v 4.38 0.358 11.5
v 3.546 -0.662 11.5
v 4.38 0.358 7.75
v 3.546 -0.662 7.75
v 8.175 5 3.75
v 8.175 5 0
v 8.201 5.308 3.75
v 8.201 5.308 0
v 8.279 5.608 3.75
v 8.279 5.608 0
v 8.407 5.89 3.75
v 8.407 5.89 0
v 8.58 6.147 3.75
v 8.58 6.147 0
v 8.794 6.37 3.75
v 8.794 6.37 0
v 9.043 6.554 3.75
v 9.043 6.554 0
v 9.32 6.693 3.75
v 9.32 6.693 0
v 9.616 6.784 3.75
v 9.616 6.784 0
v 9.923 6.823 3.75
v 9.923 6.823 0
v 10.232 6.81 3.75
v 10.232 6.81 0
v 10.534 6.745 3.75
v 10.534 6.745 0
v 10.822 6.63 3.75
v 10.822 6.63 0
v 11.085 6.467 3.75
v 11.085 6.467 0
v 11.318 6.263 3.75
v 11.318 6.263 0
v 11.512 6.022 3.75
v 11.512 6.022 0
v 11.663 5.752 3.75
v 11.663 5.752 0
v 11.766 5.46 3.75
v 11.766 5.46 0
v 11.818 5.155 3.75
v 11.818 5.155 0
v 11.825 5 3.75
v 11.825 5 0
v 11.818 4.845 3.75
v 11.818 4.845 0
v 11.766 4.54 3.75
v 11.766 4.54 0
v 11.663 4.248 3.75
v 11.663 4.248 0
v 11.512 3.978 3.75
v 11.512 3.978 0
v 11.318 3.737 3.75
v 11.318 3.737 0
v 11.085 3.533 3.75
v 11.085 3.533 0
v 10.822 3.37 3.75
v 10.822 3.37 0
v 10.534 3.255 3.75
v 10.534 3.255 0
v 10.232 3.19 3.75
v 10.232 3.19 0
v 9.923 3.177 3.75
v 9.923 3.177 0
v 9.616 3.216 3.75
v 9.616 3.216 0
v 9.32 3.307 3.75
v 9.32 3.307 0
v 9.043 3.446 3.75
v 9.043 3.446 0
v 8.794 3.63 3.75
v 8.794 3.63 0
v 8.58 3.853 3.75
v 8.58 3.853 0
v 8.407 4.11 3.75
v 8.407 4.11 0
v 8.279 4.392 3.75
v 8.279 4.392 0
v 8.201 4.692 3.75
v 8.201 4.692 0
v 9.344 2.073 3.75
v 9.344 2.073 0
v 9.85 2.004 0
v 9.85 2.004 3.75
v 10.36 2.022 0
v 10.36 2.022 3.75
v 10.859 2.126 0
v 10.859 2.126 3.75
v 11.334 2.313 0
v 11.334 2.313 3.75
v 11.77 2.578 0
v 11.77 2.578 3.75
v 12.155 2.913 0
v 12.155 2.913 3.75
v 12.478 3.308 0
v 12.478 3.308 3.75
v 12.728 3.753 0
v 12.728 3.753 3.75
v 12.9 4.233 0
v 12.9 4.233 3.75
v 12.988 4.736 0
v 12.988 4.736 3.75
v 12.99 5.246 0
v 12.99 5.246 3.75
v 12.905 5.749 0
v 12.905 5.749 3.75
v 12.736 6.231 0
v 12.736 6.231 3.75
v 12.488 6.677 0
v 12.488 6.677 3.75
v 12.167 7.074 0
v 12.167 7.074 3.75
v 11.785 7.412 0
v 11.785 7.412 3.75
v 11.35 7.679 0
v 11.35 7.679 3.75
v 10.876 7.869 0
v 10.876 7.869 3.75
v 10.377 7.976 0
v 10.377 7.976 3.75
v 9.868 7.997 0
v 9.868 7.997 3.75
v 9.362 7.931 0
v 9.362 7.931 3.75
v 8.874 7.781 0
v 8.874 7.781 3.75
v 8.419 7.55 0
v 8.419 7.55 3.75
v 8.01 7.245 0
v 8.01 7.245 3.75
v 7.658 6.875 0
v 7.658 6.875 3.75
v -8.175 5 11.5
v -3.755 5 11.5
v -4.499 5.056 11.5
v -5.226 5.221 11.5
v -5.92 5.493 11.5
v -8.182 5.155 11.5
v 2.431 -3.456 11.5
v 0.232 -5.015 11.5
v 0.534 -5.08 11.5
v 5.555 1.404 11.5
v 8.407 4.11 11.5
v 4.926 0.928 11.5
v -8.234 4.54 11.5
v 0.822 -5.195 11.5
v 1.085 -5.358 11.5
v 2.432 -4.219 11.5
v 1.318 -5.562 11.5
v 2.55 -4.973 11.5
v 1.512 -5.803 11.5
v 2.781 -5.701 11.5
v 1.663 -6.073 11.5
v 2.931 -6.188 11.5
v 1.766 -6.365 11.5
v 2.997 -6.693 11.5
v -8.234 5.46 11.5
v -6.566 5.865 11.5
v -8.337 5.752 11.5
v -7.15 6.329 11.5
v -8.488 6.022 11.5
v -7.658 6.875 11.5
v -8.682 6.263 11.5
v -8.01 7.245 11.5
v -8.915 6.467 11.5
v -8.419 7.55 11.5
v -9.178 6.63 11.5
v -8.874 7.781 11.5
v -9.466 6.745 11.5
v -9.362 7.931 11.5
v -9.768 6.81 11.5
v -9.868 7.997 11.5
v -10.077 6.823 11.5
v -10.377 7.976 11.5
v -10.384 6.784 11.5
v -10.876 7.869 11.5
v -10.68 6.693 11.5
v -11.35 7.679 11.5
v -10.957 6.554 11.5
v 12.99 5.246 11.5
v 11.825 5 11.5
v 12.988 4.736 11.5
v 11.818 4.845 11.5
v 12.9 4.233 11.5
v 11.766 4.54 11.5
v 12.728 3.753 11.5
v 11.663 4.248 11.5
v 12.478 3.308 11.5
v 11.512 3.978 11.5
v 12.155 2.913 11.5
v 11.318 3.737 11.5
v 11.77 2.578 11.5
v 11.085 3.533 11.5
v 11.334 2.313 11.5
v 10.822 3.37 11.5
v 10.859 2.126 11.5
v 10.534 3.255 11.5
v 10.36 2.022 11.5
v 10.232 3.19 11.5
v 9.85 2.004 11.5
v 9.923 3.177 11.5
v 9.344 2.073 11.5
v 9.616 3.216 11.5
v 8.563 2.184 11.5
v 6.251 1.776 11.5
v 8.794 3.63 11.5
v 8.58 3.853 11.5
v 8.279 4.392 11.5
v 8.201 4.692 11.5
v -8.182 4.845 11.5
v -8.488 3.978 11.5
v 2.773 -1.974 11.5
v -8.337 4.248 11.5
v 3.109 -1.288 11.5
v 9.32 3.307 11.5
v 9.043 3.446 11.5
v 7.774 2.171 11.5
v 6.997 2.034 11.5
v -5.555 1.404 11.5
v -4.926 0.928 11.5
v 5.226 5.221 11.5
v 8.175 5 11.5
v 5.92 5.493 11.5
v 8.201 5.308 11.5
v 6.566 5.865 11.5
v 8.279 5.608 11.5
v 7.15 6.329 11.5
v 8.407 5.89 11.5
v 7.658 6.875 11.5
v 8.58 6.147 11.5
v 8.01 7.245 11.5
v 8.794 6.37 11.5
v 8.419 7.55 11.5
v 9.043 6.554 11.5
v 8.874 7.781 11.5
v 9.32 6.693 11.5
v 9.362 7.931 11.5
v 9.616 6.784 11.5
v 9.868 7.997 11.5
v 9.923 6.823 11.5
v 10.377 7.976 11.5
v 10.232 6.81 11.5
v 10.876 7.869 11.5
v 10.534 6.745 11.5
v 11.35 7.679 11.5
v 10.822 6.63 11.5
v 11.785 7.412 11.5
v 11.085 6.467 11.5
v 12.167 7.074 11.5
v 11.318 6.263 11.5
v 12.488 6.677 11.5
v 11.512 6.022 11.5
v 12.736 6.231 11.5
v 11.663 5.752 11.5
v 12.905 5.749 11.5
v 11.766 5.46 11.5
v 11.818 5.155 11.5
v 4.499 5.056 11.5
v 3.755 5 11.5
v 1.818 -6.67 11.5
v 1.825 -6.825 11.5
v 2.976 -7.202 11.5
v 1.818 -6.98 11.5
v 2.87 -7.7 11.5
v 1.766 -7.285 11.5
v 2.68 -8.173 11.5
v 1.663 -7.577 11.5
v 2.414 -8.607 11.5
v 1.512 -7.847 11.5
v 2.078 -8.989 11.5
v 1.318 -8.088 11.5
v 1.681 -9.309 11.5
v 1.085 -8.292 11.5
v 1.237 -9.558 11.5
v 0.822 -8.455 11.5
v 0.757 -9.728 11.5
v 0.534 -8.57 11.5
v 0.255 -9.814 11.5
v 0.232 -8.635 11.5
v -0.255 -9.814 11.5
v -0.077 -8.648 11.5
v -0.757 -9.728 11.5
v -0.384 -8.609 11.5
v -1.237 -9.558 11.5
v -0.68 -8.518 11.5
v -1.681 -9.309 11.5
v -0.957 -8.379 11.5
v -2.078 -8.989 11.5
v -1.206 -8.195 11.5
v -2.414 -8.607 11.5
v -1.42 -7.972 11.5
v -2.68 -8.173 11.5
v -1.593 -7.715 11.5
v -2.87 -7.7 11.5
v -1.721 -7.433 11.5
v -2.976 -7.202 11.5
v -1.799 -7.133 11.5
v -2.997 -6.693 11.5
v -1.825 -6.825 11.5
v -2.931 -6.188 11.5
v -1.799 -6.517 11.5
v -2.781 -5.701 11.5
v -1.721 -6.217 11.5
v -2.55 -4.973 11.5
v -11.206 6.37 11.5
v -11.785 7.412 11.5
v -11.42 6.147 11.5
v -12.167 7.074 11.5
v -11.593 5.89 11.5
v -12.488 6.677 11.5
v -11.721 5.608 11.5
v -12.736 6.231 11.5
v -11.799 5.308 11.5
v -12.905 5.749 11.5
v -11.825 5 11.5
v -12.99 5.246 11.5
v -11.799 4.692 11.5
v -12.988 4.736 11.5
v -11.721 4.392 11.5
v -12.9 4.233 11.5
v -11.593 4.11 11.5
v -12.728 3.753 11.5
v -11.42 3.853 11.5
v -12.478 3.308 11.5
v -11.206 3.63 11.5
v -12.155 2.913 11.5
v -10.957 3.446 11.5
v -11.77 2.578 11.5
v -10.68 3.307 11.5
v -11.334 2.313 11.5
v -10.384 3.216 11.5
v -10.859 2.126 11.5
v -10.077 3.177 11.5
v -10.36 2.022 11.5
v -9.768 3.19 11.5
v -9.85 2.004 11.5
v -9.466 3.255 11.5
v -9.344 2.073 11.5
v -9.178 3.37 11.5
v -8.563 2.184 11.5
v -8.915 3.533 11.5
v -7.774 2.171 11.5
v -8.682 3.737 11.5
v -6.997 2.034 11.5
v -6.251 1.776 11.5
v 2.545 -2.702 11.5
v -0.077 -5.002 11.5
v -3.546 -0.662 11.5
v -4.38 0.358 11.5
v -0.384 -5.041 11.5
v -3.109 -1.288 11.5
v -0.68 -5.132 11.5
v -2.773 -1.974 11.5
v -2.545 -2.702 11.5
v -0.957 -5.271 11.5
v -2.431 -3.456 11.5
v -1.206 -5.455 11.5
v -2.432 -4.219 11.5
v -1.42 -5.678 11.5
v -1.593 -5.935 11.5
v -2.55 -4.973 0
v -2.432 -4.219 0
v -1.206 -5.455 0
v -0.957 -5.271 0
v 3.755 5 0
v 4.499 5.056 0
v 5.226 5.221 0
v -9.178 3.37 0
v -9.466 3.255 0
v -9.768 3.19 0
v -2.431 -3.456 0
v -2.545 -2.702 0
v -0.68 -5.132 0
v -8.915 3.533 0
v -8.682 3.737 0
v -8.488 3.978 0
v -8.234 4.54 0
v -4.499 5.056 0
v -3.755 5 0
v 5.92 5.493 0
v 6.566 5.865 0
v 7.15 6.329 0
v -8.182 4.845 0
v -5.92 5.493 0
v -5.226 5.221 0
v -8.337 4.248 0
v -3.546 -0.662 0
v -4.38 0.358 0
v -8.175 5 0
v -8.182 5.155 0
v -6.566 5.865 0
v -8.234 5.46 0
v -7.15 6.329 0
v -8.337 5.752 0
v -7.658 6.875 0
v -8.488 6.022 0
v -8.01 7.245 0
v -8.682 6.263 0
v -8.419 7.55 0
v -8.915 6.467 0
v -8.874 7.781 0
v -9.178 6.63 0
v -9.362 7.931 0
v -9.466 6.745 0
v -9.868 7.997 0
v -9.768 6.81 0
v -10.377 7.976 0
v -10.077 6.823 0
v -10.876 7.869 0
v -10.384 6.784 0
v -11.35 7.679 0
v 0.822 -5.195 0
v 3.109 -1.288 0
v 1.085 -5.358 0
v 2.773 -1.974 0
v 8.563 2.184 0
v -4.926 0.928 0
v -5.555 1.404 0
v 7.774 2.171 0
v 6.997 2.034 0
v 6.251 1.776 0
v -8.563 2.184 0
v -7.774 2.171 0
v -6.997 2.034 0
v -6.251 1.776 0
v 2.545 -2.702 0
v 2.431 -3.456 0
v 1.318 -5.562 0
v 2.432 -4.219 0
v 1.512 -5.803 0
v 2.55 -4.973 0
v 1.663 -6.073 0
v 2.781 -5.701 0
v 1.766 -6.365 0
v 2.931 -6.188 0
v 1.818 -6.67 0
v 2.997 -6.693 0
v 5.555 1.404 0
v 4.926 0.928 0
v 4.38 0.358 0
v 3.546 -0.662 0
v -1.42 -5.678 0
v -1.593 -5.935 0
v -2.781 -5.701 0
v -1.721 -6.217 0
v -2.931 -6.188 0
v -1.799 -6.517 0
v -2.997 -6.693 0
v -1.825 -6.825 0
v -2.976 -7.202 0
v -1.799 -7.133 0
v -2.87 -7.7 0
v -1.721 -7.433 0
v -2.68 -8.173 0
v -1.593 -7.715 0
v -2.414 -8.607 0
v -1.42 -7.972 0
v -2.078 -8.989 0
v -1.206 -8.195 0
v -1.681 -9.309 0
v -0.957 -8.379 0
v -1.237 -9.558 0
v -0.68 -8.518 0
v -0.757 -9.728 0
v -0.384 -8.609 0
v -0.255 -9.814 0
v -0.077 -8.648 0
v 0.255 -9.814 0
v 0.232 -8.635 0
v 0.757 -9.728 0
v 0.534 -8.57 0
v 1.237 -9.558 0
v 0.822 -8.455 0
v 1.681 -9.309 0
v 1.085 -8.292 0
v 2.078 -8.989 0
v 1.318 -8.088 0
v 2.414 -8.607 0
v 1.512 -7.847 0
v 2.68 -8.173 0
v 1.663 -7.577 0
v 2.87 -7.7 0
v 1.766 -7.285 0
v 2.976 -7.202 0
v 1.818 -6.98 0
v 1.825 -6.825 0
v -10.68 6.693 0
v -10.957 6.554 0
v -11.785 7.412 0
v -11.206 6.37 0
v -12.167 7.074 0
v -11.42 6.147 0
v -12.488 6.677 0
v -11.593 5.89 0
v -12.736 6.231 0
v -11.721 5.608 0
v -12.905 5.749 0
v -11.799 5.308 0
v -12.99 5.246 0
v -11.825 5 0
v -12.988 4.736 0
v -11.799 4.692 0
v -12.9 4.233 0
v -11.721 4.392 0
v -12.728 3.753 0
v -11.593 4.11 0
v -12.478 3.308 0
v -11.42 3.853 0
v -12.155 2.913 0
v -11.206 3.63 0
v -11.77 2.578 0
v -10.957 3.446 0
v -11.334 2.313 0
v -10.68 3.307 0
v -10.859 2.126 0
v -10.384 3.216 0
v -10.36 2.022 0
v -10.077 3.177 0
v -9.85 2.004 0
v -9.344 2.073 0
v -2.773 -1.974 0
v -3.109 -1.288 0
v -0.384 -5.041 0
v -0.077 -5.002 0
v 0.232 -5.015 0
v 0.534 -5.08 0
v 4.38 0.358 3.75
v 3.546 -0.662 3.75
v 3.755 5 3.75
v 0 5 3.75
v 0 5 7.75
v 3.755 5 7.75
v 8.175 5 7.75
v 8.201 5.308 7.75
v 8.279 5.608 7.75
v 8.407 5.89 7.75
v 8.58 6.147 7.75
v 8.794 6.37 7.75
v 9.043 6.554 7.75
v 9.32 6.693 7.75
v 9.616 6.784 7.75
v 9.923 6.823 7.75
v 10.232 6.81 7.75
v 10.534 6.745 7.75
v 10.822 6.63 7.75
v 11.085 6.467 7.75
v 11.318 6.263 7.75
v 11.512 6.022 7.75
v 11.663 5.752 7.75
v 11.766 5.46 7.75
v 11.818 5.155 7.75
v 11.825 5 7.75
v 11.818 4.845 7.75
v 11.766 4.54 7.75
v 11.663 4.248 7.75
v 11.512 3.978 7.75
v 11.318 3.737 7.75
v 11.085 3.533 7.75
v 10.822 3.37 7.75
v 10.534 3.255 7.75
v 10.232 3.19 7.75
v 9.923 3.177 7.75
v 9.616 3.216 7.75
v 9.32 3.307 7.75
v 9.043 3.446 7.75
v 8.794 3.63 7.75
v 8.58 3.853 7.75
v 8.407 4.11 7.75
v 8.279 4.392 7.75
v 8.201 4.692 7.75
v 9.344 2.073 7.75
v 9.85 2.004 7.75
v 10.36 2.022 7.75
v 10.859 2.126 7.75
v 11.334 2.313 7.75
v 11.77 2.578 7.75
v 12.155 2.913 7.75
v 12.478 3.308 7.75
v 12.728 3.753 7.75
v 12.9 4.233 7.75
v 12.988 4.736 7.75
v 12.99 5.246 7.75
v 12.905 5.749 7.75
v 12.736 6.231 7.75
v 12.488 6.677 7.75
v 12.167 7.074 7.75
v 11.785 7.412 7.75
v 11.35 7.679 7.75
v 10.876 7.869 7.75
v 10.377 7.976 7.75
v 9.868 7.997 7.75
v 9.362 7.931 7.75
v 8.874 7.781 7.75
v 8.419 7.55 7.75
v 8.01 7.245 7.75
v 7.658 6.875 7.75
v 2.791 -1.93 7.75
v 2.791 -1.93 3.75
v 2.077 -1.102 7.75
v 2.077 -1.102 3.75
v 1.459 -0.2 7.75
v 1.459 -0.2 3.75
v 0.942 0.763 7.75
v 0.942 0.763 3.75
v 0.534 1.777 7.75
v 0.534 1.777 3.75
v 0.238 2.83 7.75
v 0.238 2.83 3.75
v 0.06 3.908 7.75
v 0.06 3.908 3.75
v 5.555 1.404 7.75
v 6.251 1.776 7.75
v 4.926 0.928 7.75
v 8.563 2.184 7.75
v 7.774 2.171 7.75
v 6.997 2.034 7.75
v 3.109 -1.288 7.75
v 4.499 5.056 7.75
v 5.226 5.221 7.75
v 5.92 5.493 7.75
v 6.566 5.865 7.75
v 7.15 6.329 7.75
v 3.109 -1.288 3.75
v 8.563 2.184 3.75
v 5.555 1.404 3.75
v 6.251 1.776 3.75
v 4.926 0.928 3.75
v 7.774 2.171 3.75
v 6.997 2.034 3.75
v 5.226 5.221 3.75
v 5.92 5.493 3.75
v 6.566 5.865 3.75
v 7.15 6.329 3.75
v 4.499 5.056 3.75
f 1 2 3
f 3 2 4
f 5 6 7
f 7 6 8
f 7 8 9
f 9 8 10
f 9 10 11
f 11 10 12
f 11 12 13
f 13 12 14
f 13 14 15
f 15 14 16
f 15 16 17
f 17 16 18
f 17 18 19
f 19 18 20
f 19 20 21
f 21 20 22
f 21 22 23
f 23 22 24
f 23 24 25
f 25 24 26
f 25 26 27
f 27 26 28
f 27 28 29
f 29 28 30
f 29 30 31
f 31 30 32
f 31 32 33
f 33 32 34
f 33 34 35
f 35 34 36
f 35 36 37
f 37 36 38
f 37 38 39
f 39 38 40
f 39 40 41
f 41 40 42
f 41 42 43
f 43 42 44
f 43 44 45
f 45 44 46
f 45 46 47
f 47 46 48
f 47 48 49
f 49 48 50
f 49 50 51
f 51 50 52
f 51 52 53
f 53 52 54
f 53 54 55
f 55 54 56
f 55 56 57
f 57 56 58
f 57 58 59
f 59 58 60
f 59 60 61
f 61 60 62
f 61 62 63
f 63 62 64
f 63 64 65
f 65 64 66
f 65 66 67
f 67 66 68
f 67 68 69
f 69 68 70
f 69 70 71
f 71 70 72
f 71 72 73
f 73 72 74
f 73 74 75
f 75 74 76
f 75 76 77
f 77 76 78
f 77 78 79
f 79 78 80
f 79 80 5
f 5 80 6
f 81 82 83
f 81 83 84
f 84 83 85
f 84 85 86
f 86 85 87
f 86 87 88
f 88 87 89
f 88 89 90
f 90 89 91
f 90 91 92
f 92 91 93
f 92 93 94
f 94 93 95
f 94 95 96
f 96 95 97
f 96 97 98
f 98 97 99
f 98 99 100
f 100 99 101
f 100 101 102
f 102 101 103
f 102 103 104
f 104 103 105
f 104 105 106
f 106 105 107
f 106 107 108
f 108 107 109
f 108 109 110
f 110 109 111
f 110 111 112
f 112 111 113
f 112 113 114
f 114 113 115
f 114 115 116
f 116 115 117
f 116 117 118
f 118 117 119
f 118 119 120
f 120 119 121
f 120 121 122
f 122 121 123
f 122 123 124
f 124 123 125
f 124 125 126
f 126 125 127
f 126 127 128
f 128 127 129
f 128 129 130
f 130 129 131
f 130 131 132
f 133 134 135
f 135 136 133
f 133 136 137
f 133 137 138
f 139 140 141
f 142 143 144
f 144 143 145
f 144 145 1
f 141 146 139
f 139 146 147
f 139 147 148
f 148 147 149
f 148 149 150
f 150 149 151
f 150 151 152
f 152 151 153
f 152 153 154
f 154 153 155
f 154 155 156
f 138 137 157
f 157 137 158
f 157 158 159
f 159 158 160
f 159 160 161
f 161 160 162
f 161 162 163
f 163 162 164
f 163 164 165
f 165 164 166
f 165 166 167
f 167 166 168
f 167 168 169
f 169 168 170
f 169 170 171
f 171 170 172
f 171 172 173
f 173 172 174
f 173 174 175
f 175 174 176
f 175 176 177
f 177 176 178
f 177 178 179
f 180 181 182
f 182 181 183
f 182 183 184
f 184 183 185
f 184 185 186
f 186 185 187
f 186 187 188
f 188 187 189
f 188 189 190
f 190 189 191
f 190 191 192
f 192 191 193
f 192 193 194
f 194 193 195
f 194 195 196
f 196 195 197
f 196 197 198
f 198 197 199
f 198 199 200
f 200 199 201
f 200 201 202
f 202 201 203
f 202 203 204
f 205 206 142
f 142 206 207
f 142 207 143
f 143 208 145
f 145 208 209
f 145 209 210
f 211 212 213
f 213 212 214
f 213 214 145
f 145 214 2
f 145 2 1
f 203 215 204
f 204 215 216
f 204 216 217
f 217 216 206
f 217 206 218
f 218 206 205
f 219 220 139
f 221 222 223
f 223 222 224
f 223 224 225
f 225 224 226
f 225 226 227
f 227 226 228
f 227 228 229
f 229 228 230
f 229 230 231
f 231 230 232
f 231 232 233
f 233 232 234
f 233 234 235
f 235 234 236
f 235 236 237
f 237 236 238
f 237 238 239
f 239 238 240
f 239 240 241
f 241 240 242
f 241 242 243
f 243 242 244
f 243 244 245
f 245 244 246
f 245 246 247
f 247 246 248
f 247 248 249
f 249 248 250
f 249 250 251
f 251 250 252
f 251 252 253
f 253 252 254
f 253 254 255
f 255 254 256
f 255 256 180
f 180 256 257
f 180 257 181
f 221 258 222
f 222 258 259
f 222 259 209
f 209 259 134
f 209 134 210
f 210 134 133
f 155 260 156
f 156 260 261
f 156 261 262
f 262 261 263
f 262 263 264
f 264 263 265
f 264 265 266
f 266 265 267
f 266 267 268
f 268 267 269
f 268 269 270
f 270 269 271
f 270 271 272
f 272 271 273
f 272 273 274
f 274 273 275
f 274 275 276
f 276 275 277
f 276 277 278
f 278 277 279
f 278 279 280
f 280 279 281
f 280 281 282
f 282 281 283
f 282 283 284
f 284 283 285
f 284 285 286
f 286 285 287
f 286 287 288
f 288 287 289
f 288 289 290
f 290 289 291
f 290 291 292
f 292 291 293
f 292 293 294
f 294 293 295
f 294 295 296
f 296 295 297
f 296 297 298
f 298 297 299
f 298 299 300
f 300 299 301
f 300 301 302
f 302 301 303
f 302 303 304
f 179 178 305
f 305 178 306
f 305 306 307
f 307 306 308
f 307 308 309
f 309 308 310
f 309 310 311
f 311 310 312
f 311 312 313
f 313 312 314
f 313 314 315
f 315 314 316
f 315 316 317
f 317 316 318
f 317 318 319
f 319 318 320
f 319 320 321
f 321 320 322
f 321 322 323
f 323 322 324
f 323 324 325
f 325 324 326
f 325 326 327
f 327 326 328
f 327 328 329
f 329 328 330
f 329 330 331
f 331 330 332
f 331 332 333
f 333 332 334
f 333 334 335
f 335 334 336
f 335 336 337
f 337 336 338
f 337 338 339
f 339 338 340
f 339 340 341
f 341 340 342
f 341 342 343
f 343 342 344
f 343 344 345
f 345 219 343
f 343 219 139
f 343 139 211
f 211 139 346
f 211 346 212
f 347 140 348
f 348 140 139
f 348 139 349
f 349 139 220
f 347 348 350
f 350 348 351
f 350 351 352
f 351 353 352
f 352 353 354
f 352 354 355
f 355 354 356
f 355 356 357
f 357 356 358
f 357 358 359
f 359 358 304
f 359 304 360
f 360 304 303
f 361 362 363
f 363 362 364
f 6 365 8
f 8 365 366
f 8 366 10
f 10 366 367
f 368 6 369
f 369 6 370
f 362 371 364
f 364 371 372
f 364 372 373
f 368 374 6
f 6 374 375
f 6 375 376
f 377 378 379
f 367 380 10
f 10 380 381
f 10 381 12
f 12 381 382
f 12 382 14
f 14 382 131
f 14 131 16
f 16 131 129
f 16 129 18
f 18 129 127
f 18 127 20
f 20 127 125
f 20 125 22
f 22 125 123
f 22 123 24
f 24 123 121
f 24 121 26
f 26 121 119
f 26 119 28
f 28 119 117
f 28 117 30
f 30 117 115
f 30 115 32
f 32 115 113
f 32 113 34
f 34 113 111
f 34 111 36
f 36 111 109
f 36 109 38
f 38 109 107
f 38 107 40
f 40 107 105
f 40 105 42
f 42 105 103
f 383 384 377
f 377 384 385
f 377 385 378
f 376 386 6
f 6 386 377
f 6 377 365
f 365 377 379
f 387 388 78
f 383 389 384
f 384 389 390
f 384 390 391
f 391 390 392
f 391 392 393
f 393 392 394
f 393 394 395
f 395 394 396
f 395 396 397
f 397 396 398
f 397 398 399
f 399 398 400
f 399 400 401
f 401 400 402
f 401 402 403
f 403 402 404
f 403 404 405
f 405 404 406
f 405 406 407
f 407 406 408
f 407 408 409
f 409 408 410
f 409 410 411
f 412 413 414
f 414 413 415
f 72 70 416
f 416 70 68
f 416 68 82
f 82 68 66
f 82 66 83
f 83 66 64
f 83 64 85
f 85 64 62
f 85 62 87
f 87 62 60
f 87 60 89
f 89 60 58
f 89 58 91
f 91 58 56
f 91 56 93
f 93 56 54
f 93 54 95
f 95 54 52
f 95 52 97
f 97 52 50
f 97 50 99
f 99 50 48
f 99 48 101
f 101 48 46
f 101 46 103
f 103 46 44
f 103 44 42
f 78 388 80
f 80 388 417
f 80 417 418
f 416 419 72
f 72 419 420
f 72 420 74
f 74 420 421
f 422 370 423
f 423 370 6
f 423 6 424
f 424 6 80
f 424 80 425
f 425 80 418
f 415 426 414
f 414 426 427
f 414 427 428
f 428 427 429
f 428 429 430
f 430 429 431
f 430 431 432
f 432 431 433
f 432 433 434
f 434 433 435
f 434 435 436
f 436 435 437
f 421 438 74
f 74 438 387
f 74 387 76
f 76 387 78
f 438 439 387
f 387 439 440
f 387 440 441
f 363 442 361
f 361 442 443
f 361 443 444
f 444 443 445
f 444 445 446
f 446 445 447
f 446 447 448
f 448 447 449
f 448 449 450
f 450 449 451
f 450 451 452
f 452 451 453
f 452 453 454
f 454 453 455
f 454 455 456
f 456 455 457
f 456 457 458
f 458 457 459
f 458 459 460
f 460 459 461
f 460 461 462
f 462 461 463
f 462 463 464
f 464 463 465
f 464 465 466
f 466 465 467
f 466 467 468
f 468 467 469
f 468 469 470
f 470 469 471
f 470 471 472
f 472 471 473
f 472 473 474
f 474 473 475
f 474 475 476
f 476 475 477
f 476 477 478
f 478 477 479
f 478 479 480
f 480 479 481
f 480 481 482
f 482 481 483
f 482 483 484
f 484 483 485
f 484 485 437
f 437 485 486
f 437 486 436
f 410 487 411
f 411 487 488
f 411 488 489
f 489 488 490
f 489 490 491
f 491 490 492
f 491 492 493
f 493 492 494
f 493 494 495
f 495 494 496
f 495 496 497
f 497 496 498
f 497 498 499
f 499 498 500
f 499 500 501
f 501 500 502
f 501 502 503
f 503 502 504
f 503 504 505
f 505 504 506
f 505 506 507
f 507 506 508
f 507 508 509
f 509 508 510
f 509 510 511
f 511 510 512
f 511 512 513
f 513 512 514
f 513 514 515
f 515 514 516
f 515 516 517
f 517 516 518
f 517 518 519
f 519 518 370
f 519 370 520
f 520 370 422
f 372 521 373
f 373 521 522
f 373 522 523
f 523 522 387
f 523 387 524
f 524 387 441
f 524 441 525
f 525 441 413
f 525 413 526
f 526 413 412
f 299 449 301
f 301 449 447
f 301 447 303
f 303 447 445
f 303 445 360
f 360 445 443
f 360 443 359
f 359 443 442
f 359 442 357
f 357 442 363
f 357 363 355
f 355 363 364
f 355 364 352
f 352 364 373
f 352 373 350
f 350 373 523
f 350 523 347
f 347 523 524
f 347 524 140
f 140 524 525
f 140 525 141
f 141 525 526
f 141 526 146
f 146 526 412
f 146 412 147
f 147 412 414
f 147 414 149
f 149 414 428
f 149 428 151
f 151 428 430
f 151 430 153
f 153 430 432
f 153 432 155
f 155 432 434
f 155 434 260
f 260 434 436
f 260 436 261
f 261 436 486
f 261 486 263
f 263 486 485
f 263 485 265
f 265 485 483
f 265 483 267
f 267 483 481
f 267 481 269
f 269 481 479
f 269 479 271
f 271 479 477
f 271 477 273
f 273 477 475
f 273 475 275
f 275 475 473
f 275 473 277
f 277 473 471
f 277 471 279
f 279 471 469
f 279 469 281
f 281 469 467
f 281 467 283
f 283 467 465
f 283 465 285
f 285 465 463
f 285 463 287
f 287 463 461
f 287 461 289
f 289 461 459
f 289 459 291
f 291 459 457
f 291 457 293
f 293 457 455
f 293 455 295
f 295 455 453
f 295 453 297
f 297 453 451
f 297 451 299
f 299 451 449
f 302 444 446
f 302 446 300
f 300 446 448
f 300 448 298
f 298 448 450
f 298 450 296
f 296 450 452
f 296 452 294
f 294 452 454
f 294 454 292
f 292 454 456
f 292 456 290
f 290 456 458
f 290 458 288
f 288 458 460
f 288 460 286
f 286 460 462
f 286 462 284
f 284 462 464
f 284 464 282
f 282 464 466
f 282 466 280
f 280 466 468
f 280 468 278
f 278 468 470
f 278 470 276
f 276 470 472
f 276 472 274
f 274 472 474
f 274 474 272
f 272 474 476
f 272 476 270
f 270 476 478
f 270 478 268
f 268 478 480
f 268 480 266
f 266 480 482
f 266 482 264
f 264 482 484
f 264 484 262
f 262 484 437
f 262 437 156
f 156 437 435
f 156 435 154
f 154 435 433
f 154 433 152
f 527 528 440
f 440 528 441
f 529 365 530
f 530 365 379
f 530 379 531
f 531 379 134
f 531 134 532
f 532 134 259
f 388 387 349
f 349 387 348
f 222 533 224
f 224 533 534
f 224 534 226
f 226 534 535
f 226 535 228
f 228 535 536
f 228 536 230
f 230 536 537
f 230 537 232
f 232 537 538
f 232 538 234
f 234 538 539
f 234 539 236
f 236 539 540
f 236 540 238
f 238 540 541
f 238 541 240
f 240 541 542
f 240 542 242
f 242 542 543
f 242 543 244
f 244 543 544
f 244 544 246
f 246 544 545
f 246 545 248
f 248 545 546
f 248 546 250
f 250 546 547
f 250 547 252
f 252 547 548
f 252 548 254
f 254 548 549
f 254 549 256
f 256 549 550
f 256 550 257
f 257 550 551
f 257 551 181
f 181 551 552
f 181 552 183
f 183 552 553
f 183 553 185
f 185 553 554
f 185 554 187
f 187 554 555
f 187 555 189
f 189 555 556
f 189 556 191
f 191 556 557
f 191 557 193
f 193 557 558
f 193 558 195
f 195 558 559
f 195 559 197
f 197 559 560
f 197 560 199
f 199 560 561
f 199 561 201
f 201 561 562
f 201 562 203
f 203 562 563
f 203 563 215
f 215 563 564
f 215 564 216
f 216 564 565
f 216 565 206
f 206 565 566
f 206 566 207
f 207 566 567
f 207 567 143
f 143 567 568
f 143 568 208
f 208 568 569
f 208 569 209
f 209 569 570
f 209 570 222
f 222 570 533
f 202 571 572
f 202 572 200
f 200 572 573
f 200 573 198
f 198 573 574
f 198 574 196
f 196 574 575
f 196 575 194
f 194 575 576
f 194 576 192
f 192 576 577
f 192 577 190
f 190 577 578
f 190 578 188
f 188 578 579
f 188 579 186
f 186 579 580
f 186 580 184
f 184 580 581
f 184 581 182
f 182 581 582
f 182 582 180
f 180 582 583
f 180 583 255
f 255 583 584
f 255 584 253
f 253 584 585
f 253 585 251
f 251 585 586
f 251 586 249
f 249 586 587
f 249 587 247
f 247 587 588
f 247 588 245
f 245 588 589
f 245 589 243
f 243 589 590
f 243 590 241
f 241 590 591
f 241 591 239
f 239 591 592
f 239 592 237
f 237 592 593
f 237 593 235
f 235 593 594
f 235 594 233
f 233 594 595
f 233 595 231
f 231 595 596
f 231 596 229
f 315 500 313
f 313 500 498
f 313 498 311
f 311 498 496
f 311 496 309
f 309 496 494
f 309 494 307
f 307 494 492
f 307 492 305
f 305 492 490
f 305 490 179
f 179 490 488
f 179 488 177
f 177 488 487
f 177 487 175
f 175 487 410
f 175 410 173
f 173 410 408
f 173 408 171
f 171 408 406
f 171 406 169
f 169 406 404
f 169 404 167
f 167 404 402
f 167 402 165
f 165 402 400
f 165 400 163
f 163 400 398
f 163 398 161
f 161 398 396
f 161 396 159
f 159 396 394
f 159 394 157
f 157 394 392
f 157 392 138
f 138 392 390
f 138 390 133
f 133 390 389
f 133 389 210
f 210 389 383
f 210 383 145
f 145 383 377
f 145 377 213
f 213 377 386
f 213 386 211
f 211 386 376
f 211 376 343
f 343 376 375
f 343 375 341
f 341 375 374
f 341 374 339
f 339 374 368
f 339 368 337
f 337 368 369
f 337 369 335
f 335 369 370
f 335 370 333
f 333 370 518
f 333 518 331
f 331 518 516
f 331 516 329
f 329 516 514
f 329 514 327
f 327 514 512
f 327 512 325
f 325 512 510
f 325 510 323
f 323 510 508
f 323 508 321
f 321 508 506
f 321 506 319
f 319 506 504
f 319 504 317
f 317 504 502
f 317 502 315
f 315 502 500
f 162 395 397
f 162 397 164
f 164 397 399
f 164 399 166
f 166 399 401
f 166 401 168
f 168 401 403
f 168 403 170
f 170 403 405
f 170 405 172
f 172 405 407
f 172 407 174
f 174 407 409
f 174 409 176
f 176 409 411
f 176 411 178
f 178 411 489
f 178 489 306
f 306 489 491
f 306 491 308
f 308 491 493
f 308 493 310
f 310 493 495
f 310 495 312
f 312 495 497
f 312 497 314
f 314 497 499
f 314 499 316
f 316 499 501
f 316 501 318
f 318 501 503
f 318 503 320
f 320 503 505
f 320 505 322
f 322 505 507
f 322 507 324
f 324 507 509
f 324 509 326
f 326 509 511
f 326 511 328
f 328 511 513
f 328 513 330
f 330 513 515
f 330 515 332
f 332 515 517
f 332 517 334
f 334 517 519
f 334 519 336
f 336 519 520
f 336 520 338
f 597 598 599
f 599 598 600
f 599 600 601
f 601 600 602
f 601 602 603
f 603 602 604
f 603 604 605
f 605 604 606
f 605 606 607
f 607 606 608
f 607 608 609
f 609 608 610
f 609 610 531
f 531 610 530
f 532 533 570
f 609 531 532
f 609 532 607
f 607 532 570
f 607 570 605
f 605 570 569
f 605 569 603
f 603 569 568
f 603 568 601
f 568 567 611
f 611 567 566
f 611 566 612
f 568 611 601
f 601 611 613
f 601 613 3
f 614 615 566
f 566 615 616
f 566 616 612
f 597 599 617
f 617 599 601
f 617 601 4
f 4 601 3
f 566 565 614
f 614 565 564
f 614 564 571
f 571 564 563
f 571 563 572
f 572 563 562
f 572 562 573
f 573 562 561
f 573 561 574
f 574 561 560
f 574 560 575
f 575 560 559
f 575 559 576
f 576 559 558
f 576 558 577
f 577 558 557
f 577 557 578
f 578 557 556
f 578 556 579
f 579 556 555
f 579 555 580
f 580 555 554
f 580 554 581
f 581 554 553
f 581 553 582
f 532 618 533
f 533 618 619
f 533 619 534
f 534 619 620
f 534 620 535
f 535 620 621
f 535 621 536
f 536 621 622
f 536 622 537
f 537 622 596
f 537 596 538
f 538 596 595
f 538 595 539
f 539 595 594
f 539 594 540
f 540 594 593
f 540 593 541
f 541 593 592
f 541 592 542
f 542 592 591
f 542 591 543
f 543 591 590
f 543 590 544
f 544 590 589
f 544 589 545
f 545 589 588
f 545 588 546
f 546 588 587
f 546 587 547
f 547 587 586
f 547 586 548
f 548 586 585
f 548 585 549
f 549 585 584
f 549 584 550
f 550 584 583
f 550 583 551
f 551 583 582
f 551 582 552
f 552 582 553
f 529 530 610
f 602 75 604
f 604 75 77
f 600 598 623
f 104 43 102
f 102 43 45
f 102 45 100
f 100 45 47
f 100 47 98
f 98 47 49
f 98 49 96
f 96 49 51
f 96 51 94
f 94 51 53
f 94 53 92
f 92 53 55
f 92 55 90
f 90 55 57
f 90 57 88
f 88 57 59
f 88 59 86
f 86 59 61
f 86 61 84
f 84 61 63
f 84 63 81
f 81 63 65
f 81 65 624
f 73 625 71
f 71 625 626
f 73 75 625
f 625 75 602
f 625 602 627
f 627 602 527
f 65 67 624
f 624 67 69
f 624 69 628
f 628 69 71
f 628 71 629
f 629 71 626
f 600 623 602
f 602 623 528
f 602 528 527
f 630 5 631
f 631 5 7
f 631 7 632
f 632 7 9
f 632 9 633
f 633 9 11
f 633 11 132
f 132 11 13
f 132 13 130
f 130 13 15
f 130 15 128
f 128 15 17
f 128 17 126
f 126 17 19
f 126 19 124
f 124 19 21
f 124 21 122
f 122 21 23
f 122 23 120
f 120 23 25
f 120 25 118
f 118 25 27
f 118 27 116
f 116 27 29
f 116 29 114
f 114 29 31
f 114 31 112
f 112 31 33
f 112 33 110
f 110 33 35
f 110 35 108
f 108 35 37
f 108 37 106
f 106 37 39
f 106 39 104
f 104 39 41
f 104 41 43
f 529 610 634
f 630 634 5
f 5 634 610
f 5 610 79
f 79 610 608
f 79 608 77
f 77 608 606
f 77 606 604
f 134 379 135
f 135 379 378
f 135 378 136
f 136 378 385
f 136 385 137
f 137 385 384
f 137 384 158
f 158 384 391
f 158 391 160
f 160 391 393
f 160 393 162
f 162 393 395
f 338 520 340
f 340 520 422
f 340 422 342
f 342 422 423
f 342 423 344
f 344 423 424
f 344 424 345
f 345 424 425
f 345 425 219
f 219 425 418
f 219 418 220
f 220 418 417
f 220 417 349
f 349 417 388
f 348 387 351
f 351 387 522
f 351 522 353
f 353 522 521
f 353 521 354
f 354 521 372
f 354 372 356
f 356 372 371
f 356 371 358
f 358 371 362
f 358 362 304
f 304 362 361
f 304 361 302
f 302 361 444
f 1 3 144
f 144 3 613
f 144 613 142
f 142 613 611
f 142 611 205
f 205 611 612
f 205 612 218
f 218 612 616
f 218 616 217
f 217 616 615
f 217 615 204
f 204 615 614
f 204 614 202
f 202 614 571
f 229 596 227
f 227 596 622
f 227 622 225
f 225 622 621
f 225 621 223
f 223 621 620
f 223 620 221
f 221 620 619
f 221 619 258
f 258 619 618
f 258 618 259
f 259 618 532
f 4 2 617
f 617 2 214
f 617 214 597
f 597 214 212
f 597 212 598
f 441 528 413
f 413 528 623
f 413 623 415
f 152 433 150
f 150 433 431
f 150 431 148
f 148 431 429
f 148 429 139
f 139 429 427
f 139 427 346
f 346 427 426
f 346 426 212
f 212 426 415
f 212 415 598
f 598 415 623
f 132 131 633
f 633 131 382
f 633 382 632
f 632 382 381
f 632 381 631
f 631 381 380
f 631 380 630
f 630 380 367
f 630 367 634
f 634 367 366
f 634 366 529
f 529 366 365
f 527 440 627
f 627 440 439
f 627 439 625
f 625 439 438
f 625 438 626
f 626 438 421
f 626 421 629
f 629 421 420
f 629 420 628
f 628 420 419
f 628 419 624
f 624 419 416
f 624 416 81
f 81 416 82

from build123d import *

# Parameters (mm, degrees)
ESQUISSE2_R             = 3
ESQUISSE2_R_2           = 1.825
BOSS_EXTRU_1_DEPTH      = 11.5
ESQUISSE3_R             = 10
ENL_V_MAT_EXTRU_1_DEPTH = 4
CONG_1_R                = 5
FILLET1_R               = 5


with BuildPart() as part:
    # Esquisse2 → Boss.-Extru.1 (new body)
    # profile 1 of 4: a face of its own
    with BuildSketch(Plane.XY):
        with Locations((-10, 5)):
            Circle(ESQUISSE2_R)
        with Locations((-10, 5)):
            Circle(ESQUISSE2_R_2, mode=Mode.SUBTRACT)
    # profile 2 of 4: a face of its own
    with BuildSketch(Plane.XY):
        with Locations((10, 5)):
            Circle(ESQUISSE2_R)
        with Locations((10, 5)):
            Circle(ESQUISSE2_R_2, mode=Mode.SUBTRACT)
    # profile 3 of 4: a face of its own
    with BuildSketch(Plane.XY):
        with Locations((0, -6.825)):
            Circle(ESQUISSE2_R)
        with Locations((0, -6.825)):
            Circle(ESQUISSE2_R_2, mode=Mode.SUBTRACT)
    # profile 4 of 4: a face of its own
    with BuildSketch(Plane.XY):
        Polygon((-8.175, 5), (8.175, 5), (0, -5), align=None)
    extrude(amount=BOSS_EXTRU_1_DEPTH)

    # Esquisse3 → Enlèv. mat.-Extru.1 (cut)
    with BuildSketch(Plane.XY.offset(3.75)):
        with Locations((10, 5)):
            Circle(ESQUISSE3_R)
    extrude(amount=ENL_V_MAT_EXTRU_1_DEPTH, mode=Mode.SUBTRACT)

    # Congé1
    # the kernel refuses this fillet: 5 mm, written as the material it adds along each edge
    with BuildSketch(Plane(origin=(-7, 5, 0), x_dir=(-0.3311912213512006, 0.9435636570469954, 0), z_dir=(0, 0, 1))) as cong_1_piece_1:
        with BuildLine():
            CenterArc((3.643103435, -4.717818285), CONG_1_R, 109.341093727, 51.317812547)
            Line((-1.07471485, -3.061862178), (0, 0))
            ThreePointArc((0, 0), (0.993573664, -0.169309029), (1.987147328, 0))
        make_face()
    extrude(amount=11.5)
    with BuildSketch(Plane(origin=(-7.231093941, 3.845374851, 11.5), x_dir=(-0.7661000074497634, -0.6427213848826507, 0), z_dir=(0, 0, -1))) as cong_1_piece_2:
        with BuildLine():
            CenterArc((5.056907819, -4.440322454), CONG_1_R, 117.368969646, 63.360078756)
            Line((0.057312583, -4.503942212), (0, 0))
            ThreePointArc((0, 0), (1.379156678, -0.335806528), (2.758313356, 0))
        make_face()
    extrude(amount=11.5)
    with BuildSketch(Plane(origin=(-0.858096974, -3.950340093, 11.5), x_dir=(-0.6329215353519139, 0.7742159453846039, 0), z_dir=(0, 0, -1))) as cong_1_piece_3:
        with BuildLine():
            CenterArc((4.246739065, -5), CONG_1_R, 90, 61.27443838)
            ThreePointArc((-0.137920096, -2.596926126), (0.227062491, -1.314184518), (0, 0))
            Line((0, 0), (4.246739065, 0))
        make_face()
    extrude(amount=11.5)
    with BuildSketch(Plane(origin=(7.231093941, 3.845374851, 11.5), x_dir=(-0.6329215353519138, -0.774215945384604, 0), z_dir=(0, 0, -1))) as cong_1_piece_4:
        with BuildLine():
            CenterArc((4.504306848, -5), CONG_1_R, 90, 63.360078756)
            ThreePointArc((0.035096646, -2.758090063), (0.353327666, -1.374772245), (0, 0))
            Line((0, 0), (4.504306848, 0))
        make_face()
    extrude(amount=3.75)
    with BuildSketch(Plane(origin=(7, 5, 11.5), x_dir=(-1, 0, 0), z_dir=(0, 0, -1))) as cong_1_piece_5:
        with BuildLine():
            CenterArc((3.244997998, 5), CONG_1_R, 218.682187453, 51.317812547)
            ThreePointArc((-0.658125751, 1.875), (-0.169309029, 0.993573664), (0, 0))
            Line((0, 0), (3.244997998, 0))
        make_face()
    extrude(amount=3.75)
    with BuildSketch(Plane(origin=(0.858096974, -3.950340093, 11.5), x_dir=(0.7395598752725667, -0.6730907746261462, 0), z_dir=(0, 0, -1))) as cong_1_piece_6_section:
        with BuildLine():
            CenterArc((4.767740899, -4.505933799), CONG_1_R, 115.685497342, 61.27443838)
            Line((-0.225222573, -4.240762606), (0, 0))
            ThreePointArc((0, 0), (1.300292973, -0.29643972), (2.600585945, 0))
        make_face()
    cong_1_piece_6 = extrude(amount=11.5, mode=Mode.PRIVATE)
    cong_1_piece_6 = cong_1_piece_6 - Plane(origin=(10, 5, 9.625), x_dir=(1, 0, 0), z_dir=(0, 0, -1)) * Cylinder(10, 40, mode=Mode.PRIVATE)
    add(cong_1_piece_6)
    with BuildSketch(Plane(origin=(0.858096974, -3.950340093, 11.5), x_dir=(0.7395598752725667, -0.6730907746261462, 0), z_dir=(0, 0, -1))) as cong_1_piece_7_section:
        with BuildLine():
            CenterArc((4.767740899, -4.505933799), CONG_1_R, 115.685497342, 61.27443838)
            Line((-0.225222573, -4.240762606), (0, 0))
            ThreePointArc((0, 0), (1.300292973, -0.29643972), (2.600585945, 0))
        make_face()
    cong_1_piece_7 = extrude(amount=22.116847663, mode=Mode.PRIVATE)
    cong_1_piece_7 = split(cong_1_piece_7, bisect_by=Plane(origin=(2.909028405, -1.544063306, 7.75), z_dir=(0, 0, 1)), keep=Keep.TOP, mode=Mode.PRIVATE)
    add(cong_1_piece_7)
    with BuildSketch(Plane(origin=(0.858096974, -3.950340093, 22.116847663), x_dir=(0.7395598752725666, -0.6730907746261463, 0), z_dir=(0, 0, -1))) as cong_1_piece_8_section:
        with BuildLine():
            CenterArc((4.767740899, -4.505933799), CONG_1_R, 115.685497342, 61.27443838)
            Line((-0.225222573, -4.240762606), (0, 0))
            ThreePointArc((0, 0), (1.300292973, -0.29643972), (2.600585945, 0))
        make_face()
    cong_1_piece_8 = extrude(amount=22.116847663, mode=Mode.PRIVATE)
    cong_1_piece_8 = split(cong_1_piece_8, bisect_by=Plane(origin=(2.909028405, -1.544063306, 3.75), z_dir=(0, 0, -1)), keep=Keep.TOP, mode=Mode.PRIVATE)
    add(cong_1_piece_8)

    # Fillet1
    fillet1_edges = [part.edges().sort_by_distance(p)[0] for p in [
        (7.231093941, 3.845374851, 1.875),
        (7, 5, 1.875),
    ]]
    fillet(fillet1_edges, radius=FILLET1_R)


solid = part.part
